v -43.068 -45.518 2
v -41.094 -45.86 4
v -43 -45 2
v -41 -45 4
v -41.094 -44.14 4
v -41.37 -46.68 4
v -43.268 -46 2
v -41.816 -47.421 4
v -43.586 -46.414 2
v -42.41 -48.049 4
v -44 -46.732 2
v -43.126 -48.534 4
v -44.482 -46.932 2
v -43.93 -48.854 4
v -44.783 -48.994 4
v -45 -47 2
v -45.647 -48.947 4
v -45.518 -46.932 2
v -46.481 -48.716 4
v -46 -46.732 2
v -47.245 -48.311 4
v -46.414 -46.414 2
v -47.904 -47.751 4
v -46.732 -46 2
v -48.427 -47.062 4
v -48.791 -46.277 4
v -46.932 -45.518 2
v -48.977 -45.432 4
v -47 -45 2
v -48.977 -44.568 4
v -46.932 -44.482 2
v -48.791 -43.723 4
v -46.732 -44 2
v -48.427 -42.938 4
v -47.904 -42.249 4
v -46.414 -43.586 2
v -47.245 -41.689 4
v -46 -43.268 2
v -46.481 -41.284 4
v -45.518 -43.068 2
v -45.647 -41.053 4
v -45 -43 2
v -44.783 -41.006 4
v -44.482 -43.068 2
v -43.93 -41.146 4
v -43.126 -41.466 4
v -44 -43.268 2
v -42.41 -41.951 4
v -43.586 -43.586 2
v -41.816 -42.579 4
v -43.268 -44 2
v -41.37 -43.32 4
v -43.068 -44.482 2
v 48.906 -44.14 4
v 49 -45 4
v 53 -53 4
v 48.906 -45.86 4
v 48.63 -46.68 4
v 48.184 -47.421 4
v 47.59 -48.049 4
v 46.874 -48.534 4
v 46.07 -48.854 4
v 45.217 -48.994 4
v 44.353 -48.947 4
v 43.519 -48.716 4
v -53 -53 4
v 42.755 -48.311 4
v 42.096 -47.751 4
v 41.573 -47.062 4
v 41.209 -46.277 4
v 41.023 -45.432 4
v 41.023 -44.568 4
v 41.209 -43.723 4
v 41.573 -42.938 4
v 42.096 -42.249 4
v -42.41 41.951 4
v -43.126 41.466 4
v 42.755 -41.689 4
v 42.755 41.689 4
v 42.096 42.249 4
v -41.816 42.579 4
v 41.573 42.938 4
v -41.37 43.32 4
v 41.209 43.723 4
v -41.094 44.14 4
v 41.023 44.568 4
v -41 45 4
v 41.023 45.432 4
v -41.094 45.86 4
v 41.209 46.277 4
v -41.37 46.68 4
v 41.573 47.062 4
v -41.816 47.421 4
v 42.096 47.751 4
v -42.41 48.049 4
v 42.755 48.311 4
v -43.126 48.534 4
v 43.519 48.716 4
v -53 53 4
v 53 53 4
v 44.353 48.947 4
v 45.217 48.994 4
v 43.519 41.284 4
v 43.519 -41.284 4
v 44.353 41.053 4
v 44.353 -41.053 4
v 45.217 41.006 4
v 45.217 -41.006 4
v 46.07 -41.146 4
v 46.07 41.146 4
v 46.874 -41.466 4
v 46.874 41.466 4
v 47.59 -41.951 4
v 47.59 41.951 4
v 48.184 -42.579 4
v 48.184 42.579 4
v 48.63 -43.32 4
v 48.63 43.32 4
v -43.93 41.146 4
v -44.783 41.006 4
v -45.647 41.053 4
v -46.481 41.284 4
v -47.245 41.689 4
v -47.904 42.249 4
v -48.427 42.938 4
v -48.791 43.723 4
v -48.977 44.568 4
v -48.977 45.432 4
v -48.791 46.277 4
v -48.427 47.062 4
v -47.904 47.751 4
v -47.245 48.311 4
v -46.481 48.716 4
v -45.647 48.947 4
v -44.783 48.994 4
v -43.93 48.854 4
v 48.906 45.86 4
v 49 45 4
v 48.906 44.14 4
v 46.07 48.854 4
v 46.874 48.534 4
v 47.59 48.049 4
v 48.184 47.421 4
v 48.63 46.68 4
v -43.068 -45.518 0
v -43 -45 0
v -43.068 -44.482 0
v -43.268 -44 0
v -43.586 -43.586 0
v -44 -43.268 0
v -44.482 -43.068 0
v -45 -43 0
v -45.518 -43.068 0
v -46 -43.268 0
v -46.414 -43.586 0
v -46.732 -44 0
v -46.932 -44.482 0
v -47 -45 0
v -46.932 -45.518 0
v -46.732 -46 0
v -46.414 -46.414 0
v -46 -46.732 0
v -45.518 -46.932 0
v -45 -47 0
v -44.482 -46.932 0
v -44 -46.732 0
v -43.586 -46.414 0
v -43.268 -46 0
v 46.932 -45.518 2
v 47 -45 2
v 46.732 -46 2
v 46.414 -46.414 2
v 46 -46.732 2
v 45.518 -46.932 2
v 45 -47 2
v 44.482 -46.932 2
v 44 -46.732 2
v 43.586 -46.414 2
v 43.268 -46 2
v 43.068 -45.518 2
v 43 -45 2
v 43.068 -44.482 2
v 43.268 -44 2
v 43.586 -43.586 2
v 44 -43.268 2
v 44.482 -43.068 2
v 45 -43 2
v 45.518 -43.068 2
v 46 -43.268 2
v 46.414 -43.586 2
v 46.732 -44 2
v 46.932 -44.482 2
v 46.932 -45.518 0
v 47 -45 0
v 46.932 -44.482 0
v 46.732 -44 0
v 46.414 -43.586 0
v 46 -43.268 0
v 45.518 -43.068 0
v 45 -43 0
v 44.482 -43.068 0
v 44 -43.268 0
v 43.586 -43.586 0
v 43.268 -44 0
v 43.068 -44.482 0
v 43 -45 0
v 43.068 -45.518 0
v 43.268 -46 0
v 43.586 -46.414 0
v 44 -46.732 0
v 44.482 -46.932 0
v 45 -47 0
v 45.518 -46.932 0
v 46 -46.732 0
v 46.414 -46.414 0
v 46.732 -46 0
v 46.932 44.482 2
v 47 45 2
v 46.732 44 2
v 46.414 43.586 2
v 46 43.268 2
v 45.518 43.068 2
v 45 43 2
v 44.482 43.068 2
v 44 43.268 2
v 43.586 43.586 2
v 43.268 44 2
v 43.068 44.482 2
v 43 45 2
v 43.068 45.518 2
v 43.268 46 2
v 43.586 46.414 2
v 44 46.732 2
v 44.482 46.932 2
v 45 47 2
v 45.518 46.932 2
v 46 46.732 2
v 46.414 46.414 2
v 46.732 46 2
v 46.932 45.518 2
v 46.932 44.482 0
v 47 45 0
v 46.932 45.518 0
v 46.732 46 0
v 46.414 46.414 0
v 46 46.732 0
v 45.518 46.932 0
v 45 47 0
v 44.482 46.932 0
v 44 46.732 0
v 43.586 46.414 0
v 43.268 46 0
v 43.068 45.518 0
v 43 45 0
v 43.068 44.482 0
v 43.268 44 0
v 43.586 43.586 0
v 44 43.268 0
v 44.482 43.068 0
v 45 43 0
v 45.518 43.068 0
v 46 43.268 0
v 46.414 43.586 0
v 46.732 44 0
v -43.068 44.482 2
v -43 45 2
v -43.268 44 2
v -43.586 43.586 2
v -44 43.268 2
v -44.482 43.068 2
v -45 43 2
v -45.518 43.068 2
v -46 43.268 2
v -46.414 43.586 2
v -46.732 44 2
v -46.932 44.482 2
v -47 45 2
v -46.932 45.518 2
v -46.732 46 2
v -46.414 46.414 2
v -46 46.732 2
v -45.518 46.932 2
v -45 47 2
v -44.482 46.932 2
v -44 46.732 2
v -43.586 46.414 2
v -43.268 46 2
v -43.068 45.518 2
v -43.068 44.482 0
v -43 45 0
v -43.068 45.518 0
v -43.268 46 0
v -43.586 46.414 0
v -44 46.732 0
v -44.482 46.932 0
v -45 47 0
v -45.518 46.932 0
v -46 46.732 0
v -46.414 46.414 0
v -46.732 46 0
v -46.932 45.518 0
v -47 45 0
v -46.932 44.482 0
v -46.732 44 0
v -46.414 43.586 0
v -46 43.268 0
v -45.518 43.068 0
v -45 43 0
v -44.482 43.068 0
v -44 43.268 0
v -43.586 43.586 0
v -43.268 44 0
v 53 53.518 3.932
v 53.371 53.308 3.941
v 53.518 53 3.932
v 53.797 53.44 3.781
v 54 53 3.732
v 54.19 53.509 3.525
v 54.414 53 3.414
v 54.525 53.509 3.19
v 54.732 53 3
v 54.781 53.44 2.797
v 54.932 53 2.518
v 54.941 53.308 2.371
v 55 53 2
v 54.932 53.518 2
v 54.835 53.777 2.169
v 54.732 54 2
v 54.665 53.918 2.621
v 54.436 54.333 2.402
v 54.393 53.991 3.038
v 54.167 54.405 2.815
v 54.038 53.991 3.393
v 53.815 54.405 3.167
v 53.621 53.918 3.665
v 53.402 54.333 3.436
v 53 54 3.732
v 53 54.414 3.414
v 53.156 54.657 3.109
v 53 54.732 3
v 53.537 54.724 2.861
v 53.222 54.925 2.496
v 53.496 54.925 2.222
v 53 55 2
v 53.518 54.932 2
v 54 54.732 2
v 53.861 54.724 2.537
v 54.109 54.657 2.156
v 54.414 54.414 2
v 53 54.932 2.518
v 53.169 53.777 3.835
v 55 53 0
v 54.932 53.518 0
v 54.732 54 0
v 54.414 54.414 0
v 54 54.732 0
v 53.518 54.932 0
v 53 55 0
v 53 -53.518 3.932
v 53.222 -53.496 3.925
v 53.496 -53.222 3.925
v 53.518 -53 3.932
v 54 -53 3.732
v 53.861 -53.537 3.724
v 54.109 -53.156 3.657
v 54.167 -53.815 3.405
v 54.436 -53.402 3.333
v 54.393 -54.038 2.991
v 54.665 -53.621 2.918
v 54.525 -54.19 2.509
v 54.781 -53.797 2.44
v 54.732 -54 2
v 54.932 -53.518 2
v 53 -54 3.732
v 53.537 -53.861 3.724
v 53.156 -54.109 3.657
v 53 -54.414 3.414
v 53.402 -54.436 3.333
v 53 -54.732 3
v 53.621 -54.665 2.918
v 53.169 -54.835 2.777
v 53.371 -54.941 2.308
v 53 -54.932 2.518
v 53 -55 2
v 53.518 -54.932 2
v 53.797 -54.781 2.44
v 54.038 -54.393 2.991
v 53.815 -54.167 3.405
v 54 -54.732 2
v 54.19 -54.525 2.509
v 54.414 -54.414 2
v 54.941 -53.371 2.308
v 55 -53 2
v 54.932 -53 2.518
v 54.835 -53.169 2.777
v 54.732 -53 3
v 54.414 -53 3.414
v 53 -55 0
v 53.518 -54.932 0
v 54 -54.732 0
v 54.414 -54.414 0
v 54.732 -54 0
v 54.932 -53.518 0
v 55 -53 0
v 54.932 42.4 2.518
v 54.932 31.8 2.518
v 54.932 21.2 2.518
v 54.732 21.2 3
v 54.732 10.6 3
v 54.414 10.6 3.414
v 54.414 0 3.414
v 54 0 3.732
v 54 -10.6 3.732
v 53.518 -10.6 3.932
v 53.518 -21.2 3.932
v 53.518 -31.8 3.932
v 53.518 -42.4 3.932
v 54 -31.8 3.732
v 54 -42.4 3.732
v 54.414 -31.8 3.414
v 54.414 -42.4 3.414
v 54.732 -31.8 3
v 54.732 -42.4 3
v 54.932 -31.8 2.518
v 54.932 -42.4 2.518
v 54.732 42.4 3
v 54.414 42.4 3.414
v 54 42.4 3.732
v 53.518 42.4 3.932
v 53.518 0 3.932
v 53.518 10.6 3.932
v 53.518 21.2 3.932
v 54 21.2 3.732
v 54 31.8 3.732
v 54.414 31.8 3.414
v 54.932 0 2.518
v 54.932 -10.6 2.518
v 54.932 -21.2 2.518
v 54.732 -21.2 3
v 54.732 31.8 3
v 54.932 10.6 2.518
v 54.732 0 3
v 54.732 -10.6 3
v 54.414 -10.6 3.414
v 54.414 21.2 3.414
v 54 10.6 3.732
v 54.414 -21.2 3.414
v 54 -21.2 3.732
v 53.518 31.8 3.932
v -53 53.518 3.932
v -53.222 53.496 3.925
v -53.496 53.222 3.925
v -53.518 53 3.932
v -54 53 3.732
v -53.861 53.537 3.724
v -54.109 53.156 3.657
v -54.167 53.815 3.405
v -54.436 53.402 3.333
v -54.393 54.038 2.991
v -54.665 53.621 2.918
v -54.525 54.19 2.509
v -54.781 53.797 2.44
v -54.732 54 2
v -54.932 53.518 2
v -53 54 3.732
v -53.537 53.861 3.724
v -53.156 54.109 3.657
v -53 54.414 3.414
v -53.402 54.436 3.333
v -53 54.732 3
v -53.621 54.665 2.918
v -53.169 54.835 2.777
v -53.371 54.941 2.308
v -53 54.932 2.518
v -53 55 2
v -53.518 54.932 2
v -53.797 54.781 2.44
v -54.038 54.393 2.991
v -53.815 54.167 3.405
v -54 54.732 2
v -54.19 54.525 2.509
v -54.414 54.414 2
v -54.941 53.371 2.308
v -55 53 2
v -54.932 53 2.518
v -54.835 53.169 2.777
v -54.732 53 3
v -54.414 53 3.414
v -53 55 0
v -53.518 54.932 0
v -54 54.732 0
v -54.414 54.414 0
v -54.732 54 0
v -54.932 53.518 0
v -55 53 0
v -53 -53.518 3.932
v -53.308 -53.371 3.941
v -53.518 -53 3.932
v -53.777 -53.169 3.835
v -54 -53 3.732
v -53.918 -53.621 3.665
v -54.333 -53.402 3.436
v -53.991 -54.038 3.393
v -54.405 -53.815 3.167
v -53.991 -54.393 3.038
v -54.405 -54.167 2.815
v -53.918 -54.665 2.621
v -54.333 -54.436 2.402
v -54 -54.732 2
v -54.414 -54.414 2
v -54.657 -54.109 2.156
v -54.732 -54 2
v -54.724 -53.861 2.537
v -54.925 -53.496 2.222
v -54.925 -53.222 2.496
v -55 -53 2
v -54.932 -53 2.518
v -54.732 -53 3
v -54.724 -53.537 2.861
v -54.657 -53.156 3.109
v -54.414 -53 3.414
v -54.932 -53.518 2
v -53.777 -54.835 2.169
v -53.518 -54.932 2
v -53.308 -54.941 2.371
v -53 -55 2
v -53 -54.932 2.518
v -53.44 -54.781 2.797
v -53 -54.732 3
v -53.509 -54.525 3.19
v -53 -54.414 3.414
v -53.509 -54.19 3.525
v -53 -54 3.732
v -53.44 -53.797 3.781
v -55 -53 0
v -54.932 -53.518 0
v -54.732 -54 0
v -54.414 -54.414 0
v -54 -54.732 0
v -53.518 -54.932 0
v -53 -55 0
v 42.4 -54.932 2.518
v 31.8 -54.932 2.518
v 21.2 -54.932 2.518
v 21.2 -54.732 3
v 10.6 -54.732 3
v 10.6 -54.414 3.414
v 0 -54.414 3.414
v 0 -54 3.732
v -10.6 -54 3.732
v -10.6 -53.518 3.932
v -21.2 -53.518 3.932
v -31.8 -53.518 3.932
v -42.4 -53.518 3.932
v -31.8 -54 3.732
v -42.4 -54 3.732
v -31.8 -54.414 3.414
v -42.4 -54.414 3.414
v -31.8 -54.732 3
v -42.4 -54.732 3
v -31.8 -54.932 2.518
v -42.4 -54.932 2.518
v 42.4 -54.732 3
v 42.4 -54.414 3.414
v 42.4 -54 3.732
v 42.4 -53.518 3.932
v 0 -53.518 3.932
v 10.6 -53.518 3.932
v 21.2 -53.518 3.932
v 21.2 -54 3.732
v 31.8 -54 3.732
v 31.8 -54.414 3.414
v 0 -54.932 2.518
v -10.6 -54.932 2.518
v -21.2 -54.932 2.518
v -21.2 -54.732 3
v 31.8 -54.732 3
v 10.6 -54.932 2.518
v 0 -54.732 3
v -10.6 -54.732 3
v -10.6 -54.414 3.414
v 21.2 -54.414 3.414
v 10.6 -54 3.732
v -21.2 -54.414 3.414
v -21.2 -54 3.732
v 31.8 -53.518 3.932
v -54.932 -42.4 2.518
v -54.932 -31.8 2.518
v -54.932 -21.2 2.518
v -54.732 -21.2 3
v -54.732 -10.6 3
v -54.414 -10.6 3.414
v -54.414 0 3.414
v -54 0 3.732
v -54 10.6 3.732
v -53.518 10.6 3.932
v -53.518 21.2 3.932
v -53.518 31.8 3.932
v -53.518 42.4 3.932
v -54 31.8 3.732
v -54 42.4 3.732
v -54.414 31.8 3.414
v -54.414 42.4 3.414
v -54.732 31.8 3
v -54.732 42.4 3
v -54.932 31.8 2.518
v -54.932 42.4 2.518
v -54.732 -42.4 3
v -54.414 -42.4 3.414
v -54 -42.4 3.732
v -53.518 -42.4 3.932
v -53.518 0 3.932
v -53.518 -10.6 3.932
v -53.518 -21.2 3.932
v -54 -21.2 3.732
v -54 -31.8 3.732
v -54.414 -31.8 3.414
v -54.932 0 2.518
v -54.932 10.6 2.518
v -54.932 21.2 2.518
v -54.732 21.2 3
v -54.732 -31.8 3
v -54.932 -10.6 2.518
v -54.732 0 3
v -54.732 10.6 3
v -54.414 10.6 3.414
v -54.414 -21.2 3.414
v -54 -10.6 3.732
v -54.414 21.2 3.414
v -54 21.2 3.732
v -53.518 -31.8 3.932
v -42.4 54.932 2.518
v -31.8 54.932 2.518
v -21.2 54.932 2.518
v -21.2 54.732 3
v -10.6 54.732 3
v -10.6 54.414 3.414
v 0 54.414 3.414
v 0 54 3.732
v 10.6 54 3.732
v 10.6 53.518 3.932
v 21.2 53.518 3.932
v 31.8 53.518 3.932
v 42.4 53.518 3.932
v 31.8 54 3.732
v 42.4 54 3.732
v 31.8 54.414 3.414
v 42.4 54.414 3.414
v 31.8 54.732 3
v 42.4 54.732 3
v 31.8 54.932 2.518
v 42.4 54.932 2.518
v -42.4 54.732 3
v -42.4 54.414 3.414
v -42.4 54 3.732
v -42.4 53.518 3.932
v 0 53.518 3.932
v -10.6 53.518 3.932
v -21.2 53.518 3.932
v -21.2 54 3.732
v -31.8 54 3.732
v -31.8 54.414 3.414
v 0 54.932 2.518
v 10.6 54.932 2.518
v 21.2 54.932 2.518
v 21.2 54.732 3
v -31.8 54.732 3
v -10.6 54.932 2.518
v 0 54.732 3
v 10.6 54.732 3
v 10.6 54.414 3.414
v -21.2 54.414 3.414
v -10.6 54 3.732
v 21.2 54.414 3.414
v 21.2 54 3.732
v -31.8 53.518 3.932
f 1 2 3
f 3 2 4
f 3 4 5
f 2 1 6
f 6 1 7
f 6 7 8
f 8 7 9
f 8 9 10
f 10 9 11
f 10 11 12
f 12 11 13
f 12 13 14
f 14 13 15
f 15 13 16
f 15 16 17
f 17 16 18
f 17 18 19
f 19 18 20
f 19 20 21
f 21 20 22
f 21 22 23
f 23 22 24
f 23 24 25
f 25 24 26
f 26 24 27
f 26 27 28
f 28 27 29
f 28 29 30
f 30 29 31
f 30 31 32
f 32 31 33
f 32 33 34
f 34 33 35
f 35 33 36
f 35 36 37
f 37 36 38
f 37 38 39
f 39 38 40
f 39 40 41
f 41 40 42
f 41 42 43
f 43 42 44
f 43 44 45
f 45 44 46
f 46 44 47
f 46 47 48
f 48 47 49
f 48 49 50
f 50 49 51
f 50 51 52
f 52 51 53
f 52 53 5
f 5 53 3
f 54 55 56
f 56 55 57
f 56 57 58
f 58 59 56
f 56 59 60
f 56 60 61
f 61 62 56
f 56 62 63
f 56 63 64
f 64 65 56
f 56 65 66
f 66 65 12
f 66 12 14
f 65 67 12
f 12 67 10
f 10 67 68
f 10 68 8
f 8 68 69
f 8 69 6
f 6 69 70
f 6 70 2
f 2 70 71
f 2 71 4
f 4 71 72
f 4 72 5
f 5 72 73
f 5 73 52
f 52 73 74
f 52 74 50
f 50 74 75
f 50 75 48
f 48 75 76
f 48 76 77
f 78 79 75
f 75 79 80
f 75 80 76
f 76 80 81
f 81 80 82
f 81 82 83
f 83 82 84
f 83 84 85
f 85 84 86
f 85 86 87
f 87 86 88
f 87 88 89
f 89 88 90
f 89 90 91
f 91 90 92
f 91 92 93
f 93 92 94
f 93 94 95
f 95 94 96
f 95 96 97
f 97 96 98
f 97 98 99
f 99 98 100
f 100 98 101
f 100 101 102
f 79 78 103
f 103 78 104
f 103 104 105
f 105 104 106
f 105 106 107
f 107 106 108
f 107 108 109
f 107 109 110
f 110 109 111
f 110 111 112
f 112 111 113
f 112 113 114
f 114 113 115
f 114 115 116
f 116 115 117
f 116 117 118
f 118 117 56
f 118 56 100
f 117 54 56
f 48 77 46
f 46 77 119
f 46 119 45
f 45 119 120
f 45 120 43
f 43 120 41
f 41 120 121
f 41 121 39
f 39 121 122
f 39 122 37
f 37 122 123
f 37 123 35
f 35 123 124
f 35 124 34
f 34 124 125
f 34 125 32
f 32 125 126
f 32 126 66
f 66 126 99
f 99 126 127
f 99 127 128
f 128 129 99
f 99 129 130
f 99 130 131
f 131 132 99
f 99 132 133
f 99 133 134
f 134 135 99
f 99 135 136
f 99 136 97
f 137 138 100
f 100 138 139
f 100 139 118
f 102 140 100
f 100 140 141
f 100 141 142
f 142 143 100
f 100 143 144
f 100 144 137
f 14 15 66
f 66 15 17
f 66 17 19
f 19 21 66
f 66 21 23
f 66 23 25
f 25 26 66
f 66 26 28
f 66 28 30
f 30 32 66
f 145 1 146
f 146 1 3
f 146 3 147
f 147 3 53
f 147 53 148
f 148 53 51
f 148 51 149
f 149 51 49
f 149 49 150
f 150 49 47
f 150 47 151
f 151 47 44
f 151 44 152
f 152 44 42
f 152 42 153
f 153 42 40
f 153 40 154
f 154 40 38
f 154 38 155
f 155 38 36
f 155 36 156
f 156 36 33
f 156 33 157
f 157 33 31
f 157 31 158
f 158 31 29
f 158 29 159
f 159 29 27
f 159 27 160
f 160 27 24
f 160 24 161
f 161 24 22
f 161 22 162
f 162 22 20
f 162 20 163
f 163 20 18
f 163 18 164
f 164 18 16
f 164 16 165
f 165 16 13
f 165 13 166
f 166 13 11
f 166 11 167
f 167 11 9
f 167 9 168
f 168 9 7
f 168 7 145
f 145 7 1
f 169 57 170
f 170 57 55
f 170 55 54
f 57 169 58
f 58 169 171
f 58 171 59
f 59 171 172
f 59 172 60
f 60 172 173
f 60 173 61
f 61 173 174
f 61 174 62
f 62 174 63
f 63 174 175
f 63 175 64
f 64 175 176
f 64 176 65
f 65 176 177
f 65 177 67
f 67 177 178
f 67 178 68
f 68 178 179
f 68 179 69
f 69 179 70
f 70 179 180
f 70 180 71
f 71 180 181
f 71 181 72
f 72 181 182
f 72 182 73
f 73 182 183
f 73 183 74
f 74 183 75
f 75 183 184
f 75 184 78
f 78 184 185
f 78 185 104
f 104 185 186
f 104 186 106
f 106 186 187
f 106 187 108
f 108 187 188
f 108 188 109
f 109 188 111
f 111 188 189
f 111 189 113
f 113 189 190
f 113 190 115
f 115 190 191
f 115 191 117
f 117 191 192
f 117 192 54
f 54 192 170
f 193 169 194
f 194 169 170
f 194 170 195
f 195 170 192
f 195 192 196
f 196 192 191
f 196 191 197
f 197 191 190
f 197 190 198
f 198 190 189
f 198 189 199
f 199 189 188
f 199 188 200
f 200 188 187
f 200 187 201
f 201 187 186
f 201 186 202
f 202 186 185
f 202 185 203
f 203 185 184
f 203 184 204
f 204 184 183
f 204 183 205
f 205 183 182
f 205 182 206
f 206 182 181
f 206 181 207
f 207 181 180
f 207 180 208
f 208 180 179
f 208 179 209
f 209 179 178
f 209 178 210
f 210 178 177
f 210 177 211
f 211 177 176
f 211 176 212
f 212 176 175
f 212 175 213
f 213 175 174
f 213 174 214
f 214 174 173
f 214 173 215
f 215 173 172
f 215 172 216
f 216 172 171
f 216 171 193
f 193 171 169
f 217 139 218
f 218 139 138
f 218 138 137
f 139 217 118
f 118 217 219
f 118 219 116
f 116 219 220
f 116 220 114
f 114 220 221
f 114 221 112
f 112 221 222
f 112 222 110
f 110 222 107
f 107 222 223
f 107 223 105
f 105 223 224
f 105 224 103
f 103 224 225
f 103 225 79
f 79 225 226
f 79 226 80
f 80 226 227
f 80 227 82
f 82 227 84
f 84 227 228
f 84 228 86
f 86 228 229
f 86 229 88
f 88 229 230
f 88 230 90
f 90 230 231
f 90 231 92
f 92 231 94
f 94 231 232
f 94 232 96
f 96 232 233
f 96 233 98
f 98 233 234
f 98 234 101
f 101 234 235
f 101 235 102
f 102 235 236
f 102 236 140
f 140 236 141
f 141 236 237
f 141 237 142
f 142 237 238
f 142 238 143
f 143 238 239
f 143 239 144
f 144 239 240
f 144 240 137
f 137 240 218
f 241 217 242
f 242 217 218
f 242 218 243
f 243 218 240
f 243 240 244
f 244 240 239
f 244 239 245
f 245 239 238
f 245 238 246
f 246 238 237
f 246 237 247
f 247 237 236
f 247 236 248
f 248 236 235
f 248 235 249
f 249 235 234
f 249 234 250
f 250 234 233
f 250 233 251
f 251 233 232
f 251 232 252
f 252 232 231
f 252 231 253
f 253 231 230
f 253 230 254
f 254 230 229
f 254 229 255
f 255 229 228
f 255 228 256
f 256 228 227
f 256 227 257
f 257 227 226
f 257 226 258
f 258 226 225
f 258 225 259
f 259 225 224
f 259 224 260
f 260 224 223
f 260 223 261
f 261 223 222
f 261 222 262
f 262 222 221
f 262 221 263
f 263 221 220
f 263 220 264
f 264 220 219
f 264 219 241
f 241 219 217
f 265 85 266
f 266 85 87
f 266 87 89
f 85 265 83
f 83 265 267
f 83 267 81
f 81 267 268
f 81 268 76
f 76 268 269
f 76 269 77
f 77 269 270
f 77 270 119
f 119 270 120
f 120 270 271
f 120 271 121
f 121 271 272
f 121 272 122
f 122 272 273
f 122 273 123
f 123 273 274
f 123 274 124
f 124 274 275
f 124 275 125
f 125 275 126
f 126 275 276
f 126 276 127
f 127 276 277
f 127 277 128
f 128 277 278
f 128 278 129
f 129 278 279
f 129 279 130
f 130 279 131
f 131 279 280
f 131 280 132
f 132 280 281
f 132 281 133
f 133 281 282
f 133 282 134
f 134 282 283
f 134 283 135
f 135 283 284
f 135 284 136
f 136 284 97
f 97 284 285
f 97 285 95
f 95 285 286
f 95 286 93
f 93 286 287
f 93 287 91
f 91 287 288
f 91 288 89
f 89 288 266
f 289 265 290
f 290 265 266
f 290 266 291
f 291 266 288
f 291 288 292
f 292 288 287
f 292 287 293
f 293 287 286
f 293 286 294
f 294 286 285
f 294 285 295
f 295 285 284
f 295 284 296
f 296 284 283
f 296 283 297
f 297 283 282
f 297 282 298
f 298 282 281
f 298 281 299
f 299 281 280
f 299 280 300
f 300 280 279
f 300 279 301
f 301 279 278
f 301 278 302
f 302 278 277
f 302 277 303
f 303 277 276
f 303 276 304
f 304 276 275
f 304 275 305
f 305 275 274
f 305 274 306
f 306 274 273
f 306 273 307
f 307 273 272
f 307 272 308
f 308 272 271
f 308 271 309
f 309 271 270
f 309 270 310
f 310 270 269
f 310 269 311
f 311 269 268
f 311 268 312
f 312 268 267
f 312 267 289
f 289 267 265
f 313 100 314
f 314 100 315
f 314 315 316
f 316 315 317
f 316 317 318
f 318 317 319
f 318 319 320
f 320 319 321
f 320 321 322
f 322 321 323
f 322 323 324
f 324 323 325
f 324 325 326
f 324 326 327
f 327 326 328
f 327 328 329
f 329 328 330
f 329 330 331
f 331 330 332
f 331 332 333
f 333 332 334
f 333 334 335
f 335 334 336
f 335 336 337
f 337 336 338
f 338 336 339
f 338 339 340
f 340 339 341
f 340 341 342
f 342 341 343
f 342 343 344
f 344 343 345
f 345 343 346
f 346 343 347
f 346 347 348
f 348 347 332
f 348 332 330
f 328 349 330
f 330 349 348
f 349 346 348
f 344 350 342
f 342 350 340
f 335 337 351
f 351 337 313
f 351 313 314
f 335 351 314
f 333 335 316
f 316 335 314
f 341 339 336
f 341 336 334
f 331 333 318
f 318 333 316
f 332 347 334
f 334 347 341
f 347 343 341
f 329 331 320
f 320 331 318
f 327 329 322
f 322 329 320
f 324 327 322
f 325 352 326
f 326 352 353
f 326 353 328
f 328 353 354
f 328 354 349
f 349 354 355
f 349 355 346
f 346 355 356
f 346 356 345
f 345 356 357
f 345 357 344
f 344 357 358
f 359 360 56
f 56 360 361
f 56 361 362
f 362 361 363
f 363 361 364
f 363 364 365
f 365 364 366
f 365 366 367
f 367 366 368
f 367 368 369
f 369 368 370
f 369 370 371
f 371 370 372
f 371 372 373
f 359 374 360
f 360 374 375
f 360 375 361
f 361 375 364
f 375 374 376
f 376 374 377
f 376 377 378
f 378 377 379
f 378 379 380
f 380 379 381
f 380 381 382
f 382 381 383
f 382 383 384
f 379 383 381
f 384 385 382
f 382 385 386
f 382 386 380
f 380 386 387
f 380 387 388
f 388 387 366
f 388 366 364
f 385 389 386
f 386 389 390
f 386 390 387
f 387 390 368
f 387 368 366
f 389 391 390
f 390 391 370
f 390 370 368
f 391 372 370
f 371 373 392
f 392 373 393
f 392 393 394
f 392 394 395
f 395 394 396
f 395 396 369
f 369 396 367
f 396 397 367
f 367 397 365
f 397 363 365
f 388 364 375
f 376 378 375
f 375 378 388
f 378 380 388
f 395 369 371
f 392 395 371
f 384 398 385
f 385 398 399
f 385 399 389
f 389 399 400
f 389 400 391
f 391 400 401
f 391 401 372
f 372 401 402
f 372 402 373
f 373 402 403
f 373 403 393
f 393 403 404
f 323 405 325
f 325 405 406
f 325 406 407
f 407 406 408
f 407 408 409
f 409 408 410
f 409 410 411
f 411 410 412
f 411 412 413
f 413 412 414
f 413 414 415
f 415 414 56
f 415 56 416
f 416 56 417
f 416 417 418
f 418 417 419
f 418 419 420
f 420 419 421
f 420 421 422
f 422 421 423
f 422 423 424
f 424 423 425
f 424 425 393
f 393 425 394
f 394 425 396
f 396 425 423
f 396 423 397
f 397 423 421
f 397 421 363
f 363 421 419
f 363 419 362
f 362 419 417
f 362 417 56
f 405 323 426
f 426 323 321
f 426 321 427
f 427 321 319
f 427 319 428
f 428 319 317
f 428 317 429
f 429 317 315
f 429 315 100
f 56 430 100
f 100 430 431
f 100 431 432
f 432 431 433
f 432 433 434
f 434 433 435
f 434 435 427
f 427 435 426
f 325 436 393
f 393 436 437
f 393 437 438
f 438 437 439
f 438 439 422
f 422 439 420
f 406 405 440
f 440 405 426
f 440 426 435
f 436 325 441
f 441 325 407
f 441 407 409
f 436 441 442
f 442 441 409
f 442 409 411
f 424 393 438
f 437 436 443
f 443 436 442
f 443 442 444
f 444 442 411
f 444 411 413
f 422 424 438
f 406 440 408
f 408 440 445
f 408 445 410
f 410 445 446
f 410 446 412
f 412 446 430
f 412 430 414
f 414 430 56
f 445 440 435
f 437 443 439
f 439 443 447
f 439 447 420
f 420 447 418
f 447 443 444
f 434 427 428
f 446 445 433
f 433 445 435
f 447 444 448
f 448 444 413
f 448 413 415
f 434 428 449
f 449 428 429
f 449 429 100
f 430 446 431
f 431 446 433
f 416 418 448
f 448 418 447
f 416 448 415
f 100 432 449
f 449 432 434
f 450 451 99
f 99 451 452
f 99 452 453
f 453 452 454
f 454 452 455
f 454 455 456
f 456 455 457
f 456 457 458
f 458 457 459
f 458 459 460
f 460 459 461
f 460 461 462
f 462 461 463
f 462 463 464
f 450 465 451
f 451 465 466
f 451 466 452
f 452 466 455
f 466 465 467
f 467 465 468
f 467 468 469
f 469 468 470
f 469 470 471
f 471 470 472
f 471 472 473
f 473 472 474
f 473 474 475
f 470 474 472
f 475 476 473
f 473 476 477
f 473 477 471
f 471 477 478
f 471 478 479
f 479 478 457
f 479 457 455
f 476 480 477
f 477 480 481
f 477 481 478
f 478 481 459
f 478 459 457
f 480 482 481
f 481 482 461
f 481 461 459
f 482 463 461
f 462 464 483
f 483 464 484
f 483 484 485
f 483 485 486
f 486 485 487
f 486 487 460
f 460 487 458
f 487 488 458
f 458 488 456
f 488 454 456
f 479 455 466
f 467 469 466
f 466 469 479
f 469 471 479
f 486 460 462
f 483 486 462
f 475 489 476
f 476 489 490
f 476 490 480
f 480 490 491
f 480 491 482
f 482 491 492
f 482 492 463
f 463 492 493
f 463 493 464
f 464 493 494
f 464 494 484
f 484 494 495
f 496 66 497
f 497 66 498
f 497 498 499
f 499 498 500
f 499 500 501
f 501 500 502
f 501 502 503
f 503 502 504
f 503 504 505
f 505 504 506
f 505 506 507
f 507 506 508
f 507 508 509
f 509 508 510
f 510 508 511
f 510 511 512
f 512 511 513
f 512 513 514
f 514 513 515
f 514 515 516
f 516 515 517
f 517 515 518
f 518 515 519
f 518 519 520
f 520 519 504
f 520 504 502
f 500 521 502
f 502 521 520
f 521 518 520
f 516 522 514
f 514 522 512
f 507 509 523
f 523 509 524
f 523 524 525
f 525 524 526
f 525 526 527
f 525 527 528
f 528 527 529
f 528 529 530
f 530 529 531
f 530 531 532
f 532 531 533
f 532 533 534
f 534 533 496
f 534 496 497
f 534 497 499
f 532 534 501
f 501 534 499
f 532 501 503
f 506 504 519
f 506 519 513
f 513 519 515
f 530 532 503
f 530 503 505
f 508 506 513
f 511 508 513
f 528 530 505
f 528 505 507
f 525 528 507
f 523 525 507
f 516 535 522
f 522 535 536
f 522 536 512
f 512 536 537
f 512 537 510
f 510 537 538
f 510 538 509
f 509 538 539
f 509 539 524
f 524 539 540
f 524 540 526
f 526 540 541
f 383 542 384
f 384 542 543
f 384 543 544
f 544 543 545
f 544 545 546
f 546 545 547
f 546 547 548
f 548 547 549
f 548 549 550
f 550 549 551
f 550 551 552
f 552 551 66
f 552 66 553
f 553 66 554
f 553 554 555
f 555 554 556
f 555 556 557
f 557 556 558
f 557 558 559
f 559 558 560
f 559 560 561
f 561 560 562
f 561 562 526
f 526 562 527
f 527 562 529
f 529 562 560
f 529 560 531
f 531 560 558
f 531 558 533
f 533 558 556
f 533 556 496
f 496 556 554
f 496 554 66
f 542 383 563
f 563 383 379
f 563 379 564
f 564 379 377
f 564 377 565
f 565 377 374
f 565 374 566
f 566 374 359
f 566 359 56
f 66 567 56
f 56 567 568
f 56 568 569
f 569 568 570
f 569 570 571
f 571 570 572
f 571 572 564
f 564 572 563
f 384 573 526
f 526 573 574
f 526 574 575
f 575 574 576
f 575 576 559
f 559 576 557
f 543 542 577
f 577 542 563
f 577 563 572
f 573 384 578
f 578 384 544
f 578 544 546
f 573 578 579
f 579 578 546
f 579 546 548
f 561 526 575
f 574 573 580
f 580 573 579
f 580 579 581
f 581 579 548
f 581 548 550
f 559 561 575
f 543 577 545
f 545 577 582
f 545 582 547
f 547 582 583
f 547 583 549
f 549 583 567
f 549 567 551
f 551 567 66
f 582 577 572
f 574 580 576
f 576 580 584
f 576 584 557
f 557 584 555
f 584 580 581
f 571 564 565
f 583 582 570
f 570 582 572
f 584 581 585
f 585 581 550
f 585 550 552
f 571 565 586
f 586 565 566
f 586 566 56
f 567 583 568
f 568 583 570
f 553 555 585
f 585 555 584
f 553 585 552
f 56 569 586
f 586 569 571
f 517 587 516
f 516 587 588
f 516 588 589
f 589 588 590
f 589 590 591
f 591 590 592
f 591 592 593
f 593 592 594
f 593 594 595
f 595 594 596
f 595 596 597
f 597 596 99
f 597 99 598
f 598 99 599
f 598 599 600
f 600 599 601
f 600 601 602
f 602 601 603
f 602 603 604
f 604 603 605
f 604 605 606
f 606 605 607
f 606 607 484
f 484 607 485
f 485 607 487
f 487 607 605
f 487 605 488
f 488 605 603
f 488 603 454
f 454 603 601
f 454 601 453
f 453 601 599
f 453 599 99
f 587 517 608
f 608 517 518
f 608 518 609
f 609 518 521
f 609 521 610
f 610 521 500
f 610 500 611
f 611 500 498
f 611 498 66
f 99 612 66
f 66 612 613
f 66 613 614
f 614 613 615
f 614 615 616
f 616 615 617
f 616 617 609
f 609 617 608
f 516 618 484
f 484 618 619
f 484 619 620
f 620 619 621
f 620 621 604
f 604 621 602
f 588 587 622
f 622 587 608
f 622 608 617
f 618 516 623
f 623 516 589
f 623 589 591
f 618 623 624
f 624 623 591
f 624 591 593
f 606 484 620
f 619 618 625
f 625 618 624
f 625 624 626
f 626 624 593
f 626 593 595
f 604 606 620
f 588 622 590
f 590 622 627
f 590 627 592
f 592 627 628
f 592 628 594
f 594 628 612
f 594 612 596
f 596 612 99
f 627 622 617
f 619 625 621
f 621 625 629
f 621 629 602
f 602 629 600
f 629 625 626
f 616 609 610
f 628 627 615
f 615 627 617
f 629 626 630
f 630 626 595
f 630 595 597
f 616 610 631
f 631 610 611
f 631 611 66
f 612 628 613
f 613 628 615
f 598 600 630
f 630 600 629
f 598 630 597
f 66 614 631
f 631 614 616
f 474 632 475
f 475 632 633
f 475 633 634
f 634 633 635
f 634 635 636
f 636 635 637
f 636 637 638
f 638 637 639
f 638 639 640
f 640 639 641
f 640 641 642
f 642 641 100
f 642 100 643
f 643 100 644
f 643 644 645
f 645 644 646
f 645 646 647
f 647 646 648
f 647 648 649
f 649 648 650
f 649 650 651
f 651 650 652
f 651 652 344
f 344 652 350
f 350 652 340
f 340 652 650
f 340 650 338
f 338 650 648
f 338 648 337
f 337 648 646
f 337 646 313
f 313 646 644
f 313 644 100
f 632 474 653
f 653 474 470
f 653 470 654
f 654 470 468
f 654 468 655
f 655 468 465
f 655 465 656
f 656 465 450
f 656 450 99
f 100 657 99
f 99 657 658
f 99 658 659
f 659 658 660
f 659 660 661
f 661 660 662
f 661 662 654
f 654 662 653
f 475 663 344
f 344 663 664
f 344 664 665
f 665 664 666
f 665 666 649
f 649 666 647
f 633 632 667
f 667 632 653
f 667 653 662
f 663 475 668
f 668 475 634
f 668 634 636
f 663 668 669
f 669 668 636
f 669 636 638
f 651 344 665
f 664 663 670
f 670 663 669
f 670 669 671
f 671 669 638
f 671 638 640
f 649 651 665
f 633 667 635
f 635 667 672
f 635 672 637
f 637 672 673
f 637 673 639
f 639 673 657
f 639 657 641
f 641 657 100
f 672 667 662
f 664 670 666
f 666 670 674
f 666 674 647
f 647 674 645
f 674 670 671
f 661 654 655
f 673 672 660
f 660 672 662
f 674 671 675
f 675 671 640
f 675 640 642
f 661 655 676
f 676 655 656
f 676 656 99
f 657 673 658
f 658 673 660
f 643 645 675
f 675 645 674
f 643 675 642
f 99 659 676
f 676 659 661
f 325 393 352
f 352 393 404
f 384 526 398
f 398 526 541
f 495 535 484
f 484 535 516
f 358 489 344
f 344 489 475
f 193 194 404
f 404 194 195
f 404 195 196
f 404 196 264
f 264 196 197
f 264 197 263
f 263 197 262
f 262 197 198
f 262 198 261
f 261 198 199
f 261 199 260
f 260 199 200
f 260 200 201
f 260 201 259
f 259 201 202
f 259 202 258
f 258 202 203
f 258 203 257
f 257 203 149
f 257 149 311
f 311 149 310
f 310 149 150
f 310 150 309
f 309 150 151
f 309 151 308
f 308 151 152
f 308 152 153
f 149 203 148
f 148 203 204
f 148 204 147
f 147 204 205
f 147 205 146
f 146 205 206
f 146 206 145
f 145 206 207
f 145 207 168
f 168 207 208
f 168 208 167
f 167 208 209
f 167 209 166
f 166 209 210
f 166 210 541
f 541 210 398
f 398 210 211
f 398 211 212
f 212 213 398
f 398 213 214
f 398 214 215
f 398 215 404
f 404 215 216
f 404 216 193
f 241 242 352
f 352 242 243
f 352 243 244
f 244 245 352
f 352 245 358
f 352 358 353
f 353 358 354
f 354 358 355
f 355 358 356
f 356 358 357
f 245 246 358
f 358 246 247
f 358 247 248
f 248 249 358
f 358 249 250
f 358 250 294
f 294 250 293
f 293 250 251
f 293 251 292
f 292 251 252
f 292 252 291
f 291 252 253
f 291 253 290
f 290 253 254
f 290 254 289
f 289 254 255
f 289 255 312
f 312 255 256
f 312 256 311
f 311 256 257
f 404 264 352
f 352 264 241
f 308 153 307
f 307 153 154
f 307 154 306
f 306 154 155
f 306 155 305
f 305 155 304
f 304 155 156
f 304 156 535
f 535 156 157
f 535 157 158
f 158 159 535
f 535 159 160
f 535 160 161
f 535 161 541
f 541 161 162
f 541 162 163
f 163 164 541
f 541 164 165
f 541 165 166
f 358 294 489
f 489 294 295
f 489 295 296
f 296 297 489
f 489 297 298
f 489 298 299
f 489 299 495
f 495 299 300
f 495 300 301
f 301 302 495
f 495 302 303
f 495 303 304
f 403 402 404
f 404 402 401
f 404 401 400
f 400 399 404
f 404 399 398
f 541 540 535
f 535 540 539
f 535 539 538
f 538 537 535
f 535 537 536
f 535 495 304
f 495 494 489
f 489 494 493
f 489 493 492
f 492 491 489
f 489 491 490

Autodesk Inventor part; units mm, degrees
ref_plane "YZ Plane" through (0, 0, 0) normal (1, 0, 0) x (0, 1, 0)
ref_plane "XZ Plane" through (0, 0, 0) normal (0, 1, 0) x (-1, 0, 0)
ref_plane "XY Plane" through (0, 0, 0) normal (0, 0, 1) x (1, 0, 0)
sketch "Sketch2" plane through (0, 0, 0) normal (0, 0, 1) x (1, 0, 0)
  line L0 (-55, -55) -> (55, -55)
  line L1 (55, -55) -> (55, 55)
  line L2 (55, 55) -> (-55, 55)
  line L3 (-55, 55) -> (-55, -55)
  line L4 (-55, -55) -> (55, 55) construction
  line L5 (55, -55) -> (-55, 55) construction
  point P0 (0, 0)
  dimension "Lid_Width" = 110
  dimension "Lid_Length" = 110
extrude "Extrusion1" add sketch "Sketch2" along normal blind 4
fillet "Fillet1" radius 2 8 edges at (-55, -55, 2) (-55, 55, 2) (55, 55, 2) (55, -55, 2) (55, 0, 4) (0, 55, 4) (-55, 0, 4) (0, -55, 4)
sketch "Sketch6" plane through (0, 0, 4) normal (0, 0, 1) x (1, 0, 0)
  circle A0 centre (-45, 45) radius 2
  line L0 (53, 55) -> (-53, 55) projected
  line L1 (-55, 53) -> (-55, -53) projected
  line L2 (0, 0) -> (0, 55) construction
  line L3 (0, 0) -> (-55, 0) construction
  circle A1 centre (45, 45) radius 2
  circle A2 centre (-45, -45) radius 2
  circle A3 centre (45, -45) radius 2
  dimension "d26" = 4
  dimension "d27" = 10
  dimension "d28" = 10
extrude "Extrusion4" cut sketch "Sketch6" against normal blind 4
chamfer "Chamfer2" distance 2 angle 45 4 edges at (-47, 45, 4) (43, 45, 4) (43, -45, 4) (-47, -45, 4)
equation "\"Lid_Width\" = PCB_Width + 2 * Offset"
equation "\"Lid_Length\" = PCB_Length + 2 * Offset"
equation "\"d2\" = 2 * Wall_Thickness"
equation "\"d4\" = Wall_Thickness"
equation "\"d29\" = 2 * Wall_Thickness"
equation "\"d31\" = Wall_Thickness"
equation "\"Offset\" = 15"
equation "\"Wall_Thickness\" = 2"
equation "\"PCB_Width\" = 80"
equation "\"PCB_Length\" = 80"
properties part number "Lid"
